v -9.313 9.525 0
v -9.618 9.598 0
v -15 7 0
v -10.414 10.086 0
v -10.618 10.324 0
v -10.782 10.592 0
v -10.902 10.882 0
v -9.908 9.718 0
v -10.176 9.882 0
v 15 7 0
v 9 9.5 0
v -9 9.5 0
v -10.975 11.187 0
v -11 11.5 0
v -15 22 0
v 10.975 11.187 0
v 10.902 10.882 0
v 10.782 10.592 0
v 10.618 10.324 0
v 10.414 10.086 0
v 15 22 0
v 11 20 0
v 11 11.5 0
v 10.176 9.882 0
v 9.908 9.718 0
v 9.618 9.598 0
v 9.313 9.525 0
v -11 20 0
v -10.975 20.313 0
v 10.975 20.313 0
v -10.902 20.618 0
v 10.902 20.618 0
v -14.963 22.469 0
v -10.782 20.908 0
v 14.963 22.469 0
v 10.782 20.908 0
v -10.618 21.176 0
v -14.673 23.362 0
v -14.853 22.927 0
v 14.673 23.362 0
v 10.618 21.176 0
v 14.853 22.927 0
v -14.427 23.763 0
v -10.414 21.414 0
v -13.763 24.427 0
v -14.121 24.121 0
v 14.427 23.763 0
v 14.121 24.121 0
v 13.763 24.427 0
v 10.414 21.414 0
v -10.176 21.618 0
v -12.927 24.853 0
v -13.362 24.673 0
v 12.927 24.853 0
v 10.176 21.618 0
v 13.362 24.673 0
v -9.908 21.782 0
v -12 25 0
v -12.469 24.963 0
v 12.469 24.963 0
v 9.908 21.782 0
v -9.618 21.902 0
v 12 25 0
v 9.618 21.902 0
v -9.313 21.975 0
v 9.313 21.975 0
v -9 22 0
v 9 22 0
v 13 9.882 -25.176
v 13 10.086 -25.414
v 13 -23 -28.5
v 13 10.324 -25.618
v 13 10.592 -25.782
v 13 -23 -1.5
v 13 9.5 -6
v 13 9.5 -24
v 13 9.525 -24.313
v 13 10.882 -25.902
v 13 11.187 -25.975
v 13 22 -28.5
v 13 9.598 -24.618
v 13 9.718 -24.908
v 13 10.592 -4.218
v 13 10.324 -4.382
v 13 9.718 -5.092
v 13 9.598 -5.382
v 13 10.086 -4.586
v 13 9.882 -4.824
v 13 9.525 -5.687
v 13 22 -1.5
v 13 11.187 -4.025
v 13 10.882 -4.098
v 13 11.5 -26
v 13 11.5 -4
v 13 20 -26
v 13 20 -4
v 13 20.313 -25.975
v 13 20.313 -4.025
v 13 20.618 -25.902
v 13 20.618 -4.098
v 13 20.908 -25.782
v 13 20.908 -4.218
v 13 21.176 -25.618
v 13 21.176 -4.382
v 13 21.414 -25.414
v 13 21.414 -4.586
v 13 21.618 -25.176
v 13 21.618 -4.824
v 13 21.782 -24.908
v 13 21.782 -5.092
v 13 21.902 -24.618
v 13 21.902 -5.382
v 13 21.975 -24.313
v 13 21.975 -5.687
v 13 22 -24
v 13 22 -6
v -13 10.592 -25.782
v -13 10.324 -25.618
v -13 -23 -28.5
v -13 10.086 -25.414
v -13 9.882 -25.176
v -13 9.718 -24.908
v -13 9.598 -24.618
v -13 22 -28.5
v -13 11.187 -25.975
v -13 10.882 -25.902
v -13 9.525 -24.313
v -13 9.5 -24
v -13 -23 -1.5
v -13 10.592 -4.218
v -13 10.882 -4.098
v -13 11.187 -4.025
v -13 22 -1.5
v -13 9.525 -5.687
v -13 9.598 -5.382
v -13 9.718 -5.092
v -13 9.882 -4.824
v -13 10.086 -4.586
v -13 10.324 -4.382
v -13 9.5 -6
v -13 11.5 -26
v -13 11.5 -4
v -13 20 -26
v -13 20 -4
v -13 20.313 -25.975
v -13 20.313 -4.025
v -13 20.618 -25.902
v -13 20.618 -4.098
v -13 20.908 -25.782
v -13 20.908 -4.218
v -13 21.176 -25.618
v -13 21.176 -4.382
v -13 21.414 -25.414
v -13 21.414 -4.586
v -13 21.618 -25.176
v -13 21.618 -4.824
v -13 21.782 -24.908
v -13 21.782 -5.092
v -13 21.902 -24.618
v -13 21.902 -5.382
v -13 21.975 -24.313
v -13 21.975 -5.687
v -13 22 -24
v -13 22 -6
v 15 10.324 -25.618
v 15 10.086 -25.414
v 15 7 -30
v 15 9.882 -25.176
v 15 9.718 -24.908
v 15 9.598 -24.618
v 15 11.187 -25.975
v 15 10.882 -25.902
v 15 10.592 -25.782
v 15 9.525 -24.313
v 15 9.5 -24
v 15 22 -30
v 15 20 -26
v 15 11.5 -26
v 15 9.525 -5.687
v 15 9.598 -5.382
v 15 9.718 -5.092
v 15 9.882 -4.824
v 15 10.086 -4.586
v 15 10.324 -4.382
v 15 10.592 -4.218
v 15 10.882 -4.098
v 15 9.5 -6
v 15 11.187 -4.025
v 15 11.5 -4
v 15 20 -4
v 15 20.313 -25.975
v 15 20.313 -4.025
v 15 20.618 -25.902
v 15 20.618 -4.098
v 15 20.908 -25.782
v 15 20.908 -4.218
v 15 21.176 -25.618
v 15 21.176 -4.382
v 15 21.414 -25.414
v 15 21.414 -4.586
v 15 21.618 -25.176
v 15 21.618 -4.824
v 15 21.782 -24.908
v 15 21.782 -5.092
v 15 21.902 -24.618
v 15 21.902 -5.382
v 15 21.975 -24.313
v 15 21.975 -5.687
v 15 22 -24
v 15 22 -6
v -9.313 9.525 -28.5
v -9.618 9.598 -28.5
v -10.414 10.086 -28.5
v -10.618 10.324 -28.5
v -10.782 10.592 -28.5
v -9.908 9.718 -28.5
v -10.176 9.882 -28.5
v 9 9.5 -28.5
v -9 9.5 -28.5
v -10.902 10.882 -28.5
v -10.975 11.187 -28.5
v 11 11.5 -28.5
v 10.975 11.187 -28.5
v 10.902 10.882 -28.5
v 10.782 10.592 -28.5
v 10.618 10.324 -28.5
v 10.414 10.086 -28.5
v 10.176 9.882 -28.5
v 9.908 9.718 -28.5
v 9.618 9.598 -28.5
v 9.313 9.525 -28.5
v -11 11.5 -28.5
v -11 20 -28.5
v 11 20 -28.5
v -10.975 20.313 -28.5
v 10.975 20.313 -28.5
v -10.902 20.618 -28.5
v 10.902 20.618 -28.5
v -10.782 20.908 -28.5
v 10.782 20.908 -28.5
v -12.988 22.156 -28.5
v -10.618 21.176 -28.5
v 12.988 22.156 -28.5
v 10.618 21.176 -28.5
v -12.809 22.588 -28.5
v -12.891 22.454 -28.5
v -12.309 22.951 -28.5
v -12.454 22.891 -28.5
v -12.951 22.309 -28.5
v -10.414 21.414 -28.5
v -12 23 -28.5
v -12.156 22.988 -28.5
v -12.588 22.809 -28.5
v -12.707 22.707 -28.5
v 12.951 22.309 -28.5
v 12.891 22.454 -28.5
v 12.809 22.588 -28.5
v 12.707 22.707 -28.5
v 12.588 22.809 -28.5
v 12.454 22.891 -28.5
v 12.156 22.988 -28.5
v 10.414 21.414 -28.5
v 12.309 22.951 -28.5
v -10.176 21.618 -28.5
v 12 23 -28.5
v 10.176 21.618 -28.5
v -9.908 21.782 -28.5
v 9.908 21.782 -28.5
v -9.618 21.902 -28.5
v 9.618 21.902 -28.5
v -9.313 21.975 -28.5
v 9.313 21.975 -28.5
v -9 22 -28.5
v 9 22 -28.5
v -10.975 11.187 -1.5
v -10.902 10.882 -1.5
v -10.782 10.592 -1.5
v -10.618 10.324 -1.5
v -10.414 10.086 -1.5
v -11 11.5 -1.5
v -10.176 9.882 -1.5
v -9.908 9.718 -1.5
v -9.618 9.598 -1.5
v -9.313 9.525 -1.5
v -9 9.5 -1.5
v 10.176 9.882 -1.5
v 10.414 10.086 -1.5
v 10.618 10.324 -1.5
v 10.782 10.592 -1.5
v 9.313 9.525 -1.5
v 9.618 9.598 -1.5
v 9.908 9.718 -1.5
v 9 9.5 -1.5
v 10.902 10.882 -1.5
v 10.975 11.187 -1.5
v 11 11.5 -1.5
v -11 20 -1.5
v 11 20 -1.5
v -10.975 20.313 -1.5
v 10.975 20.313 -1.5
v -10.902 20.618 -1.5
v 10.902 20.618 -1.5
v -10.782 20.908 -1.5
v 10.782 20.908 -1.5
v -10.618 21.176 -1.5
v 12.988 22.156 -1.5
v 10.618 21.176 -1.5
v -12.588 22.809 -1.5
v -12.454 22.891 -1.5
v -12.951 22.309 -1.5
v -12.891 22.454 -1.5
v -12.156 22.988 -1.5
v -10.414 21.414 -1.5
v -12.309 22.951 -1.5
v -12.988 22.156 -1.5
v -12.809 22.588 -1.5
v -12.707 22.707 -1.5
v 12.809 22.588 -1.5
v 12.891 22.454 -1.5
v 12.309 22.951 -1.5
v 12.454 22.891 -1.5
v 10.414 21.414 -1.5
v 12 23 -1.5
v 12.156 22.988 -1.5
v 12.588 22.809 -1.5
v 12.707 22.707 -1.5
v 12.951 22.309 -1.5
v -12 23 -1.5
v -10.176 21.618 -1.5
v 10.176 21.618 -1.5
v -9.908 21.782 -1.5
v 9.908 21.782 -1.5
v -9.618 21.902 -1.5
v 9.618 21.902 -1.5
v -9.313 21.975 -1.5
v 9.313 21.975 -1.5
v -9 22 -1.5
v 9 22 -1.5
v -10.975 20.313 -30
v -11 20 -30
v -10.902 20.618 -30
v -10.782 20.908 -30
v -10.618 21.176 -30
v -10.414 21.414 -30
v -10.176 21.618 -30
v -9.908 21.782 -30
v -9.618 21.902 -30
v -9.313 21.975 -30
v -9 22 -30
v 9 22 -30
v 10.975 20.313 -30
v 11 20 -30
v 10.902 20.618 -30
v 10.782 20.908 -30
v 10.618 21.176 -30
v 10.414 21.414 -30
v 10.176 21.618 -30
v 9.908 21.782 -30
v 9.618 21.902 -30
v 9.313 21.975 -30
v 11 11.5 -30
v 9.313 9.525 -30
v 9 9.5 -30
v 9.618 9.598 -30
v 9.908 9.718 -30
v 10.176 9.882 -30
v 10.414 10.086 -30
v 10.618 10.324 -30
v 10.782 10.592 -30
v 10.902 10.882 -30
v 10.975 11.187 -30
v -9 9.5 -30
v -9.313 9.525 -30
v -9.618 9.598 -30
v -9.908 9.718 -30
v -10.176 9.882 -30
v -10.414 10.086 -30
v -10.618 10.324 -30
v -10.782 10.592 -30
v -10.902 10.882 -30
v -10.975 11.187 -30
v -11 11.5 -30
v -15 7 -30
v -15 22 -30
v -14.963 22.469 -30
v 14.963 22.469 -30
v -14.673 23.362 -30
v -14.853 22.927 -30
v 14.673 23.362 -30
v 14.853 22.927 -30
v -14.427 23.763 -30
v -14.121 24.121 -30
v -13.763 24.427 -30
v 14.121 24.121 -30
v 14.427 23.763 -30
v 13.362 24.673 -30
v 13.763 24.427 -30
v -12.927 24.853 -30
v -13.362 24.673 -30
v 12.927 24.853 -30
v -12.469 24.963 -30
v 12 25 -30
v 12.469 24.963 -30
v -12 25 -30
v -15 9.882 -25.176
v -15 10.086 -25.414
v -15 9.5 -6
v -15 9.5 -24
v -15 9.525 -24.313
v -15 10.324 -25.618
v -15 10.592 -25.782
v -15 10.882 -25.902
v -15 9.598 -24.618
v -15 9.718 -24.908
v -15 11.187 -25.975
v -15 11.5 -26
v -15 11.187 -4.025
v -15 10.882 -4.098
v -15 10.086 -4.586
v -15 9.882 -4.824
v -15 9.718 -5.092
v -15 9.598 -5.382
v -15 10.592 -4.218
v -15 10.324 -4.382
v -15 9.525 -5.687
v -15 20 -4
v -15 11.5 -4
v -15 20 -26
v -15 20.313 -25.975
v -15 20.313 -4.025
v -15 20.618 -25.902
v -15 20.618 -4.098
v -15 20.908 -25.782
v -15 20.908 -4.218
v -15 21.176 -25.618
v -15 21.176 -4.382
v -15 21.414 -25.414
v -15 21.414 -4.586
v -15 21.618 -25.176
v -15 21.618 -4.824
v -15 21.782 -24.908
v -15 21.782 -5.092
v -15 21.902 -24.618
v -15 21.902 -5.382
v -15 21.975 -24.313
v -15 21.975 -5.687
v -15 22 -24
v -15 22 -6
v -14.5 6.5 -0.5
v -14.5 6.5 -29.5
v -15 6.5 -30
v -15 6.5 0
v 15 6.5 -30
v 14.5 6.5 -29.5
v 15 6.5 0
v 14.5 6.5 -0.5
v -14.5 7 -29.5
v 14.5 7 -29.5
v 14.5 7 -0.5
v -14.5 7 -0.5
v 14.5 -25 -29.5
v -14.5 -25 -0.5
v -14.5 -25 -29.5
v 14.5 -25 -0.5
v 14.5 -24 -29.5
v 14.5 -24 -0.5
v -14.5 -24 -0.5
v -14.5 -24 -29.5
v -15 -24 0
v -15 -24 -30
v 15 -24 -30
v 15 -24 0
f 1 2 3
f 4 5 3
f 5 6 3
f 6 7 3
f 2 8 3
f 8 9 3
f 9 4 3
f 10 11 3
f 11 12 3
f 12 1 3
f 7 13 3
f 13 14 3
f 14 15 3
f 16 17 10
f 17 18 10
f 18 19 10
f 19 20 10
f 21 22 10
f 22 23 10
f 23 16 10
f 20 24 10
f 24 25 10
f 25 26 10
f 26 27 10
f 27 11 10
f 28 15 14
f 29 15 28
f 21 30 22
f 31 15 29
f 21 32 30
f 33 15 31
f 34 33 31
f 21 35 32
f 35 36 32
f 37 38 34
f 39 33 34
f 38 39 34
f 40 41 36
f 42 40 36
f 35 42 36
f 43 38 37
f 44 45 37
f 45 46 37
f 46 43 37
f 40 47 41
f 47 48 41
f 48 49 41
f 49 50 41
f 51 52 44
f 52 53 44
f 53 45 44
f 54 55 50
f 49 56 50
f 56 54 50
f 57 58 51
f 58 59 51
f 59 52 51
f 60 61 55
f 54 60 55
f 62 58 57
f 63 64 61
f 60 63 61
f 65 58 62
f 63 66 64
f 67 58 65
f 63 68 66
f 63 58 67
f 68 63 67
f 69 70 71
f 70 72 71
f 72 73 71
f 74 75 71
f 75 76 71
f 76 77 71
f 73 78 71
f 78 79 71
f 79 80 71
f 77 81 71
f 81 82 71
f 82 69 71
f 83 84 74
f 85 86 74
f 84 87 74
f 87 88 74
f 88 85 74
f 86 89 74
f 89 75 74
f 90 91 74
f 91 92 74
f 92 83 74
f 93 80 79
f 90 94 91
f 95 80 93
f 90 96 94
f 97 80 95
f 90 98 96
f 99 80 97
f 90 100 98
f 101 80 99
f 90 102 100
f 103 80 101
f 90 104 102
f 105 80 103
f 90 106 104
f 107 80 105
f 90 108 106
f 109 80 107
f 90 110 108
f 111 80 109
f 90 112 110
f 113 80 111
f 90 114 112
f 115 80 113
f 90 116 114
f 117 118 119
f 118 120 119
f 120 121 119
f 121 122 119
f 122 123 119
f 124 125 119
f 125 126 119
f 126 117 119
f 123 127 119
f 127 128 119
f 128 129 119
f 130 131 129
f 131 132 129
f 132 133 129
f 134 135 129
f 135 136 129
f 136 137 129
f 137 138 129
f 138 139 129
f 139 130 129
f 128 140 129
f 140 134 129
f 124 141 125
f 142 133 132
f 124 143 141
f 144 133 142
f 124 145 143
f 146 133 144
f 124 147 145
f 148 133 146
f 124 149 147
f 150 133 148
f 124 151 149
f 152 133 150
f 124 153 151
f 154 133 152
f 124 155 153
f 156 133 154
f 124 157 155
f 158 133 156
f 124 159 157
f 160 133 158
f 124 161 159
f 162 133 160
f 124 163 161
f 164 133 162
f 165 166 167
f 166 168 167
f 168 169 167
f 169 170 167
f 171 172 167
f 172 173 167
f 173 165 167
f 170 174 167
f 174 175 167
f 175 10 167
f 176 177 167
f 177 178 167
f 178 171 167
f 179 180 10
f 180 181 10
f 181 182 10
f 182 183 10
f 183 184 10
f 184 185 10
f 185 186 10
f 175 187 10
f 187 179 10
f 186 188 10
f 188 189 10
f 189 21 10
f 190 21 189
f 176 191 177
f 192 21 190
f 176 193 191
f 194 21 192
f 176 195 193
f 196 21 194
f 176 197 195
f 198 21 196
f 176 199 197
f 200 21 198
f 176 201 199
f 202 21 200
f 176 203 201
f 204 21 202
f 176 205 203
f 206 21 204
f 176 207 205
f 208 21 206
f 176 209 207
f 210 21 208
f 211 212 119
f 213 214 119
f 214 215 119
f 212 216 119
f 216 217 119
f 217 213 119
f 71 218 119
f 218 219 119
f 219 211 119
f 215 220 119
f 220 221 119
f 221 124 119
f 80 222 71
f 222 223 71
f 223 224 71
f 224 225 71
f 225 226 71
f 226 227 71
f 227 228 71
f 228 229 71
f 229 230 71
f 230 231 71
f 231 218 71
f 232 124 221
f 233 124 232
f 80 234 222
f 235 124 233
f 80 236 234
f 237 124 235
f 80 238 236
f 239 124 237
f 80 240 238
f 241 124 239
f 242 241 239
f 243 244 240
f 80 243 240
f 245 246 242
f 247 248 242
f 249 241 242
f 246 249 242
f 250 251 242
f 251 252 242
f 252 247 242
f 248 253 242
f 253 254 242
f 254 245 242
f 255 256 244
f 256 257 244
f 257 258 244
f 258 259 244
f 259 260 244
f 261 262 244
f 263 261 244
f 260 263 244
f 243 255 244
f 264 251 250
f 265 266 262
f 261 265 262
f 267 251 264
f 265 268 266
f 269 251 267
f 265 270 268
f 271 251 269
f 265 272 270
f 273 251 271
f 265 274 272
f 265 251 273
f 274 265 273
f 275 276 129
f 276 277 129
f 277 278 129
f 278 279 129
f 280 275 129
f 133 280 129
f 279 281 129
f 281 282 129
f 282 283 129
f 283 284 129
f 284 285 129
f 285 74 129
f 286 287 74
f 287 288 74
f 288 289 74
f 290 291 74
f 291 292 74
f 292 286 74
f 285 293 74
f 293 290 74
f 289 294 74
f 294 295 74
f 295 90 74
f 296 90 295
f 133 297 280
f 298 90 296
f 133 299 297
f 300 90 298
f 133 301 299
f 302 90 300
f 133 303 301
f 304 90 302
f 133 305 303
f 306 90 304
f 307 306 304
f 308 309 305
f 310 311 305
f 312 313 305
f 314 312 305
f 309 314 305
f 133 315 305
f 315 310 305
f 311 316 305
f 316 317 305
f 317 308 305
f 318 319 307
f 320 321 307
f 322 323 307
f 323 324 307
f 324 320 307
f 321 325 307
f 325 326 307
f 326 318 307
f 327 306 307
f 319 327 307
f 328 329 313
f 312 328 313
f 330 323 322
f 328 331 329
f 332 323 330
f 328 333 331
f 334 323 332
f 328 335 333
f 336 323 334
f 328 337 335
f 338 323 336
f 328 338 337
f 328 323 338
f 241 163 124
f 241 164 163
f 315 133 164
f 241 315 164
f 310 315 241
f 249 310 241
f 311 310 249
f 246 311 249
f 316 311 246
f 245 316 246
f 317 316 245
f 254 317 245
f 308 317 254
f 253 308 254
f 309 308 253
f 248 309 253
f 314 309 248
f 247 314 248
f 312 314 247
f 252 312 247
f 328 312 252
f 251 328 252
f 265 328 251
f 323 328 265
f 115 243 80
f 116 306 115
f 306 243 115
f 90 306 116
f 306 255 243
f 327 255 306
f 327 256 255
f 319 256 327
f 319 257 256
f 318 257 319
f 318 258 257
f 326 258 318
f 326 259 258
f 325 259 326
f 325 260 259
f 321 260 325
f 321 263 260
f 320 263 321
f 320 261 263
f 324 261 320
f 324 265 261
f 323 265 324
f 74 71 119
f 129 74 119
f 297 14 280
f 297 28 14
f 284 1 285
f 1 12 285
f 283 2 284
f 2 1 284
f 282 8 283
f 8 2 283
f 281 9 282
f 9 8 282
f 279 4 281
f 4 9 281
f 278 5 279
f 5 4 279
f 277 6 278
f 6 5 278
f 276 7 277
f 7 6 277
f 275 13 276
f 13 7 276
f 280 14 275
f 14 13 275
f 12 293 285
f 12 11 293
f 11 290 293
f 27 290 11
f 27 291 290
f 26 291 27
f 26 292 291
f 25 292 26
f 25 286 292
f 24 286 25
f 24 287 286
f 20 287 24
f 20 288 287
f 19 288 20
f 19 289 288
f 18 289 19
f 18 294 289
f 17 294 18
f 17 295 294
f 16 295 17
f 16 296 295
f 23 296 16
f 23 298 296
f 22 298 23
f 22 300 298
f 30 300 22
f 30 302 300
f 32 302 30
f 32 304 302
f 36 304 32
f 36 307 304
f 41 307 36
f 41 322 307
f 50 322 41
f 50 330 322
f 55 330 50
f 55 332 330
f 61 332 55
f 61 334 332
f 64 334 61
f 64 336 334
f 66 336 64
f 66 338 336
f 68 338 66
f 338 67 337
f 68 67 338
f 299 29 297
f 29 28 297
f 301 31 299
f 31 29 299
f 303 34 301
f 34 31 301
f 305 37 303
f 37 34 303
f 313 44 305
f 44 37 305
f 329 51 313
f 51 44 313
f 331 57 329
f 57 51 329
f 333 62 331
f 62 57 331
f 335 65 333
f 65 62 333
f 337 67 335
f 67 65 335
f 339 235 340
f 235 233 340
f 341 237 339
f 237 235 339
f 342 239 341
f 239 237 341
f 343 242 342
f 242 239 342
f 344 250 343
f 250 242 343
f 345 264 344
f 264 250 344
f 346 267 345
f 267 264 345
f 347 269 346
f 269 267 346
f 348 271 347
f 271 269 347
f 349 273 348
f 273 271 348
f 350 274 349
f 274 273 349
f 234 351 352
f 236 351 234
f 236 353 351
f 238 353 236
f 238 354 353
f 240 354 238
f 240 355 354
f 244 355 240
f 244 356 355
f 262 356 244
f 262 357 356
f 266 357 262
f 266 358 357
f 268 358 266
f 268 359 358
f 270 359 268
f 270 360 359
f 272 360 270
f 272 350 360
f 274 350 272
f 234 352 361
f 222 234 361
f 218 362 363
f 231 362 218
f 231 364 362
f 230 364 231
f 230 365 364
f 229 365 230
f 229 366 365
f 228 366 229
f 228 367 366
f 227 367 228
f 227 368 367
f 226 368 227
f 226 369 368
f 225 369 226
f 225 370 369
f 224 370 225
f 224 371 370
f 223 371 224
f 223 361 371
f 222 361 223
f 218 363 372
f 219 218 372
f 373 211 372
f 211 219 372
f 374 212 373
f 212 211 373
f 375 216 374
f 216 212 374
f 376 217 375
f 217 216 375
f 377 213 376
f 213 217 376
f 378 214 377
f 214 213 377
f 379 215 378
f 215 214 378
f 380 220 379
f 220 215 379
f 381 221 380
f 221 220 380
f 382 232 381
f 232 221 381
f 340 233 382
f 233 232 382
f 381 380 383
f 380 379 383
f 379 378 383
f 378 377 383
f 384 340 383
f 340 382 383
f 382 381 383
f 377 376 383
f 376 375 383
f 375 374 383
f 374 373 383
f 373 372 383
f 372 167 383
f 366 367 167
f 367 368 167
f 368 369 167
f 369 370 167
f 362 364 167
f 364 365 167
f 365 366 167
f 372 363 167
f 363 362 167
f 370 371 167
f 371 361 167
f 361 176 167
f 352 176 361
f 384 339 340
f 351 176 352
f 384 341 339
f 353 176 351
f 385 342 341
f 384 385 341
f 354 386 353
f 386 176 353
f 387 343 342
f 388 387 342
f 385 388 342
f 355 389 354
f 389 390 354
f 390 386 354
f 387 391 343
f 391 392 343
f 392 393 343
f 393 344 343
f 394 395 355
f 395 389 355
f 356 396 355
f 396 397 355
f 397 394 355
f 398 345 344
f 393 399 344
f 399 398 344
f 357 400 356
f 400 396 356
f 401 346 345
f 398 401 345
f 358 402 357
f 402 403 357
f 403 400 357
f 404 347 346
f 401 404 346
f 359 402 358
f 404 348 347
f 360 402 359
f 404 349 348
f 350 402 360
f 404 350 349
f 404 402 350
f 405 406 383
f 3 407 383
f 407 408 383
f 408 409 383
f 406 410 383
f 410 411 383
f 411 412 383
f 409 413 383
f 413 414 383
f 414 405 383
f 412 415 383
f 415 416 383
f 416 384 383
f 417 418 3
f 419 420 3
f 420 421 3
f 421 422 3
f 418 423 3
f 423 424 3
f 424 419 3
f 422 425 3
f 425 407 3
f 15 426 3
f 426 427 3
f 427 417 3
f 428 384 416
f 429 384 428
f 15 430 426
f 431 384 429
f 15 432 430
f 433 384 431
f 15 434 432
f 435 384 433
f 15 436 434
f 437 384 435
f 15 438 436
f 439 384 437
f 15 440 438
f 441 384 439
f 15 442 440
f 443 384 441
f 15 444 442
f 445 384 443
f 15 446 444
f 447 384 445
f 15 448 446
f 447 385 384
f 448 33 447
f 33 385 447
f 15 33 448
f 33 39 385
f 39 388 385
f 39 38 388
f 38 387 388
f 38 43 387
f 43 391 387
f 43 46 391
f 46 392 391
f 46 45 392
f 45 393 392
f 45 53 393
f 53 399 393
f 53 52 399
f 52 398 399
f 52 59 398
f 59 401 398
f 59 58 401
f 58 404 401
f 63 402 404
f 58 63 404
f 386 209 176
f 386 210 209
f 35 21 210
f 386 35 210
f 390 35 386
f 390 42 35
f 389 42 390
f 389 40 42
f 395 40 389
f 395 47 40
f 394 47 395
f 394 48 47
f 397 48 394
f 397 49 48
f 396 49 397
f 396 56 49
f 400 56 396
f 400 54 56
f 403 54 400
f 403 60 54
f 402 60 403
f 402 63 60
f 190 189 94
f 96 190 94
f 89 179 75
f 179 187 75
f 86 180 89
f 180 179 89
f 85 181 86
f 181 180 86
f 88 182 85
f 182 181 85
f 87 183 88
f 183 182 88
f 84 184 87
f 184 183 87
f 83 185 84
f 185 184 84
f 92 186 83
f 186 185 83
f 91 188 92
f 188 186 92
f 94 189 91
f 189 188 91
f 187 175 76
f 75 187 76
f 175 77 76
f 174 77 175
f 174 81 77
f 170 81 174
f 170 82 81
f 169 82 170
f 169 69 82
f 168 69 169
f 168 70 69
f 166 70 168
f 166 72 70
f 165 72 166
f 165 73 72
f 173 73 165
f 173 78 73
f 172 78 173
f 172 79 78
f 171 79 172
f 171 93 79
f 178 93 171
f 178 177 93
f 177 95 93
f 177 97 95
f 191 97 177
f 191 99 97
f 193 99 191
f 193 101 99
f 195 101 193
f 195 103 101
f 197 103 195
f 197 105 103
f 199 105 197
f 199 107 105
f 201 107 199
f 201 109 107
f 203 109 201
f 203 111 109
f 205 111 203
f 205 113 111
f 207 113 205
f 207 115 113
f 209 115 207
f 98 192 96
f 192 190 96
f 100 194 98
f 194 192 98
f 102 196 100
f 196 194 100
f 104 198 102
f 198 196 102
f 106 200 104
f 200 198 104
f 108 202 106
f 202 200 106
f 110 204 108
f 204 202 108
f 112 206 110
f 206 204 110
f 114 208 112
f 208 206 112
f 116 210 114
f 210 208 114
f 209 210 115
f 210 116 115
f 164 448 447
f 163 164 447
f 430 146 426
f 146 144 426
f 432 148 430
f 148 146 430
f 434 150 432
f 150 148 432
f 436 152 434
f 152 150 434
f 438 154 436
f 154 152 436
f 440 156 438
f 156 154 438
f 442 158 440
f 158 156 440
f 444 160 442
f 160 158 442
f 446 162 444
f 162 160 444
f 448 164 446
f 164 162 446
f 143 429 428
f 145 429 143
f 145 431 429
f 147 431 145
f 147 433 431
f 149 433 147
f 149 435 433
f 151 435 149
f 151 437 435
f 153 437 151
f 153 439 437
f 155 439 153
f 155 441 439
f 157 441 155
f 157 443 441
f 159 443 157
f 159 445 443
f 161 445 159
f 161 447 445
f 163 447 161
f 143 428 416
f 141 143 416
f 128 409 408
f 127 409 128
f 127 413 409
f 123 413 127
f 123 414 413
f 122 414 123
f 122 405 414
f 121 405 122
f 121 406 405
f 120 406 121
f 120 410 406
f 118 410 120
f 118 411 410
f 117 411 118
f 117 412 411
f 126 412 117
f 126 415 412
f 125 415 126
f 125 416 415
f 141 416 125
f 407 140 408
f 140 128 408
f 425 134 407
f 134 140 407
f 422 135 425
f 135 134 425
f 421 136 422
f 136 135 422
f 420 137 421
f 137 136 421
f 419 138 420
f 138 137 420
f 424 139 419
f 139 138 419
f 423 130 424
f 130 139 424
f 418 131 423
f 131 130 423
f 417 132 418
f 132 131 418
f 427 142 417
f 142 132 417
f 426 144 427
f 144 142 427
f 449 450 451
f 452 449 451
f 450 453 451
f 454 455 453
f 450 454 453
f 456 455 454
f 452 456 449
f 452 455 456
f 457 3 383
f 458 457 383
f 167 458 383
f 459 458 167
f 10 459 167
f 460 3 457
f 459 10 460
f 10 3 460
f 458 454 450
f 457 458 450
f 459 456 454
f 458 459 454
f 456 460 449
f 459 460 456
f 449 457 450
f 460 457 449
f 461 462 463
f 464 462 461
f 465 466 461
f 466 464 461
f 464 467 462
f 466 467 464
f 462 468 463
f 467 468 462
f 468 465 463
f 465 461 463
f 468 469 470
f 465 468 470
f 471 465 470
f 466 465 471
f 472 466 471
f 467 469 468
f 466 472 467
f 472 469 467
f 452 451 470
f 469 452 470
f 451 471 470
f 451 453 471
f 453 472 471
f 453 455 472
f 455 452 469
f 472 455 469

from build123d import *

# Parameters (mm, degrees)
BOSS_EXTRUDE1_DEPTH = 30
CUT_EXTRUDE1_START  = -1.5
CUT_EXTRUDE1_DEPTH  = 27
CUT_EXTRUDE2_DEPTH  = 42.833001327
CUT_EXTRUDE3_DEPTH  = 50.244289009
SKETCH8_W           = 30
SKETCH8_H           = 30
SKETCH8_W_2         = 29
SKETCH8_H_2         = 29
CUT_EXTRUDE5_DEPTH  = 1
CUT_EXTRUDE9_START  = -31
SKETCH9_W           = 30
SKETCH9_H           = 30
SKETCH9_W_2         = 29
SKETCH9_H_2         = 29
CUT_EXTRUDE9_DEPTH  = 0.5


with BuildPart() as part:
    # Sketch1 → Boss-Extrude1 (new body)
    with BuildSketch(Plane.XY):
        with BuildLine():
            Line((-15, -25), (15, -25))
            Line((15, -25), (15, 22))
            ThreePointArc((15, 22), (14.121320344, 24.121320344), (12, 25))
            Line((12, 25), (-12, 25))
            ThreePointArc((-12, 25), (-14.121320344, 24.121320344), (-15, 22))
            Line((-15, 22), (-15, -25))
        make_face()
    extrude(amount=-BOSS_EXTRUDE1_DEPTH)

    # Sketch2 → Cut-Extrude1 (cut)
    with BuildSketch(Plane.XY.offset(CUT_EXTRUDE1_START)):
        with BuildLine():
            Line((-13, 22), (-13, -23))
            Line((-13, -23), (13, -23))
            Line((13, -23), (13, 22))
            ThreePointArc((13, 22), (12.707106781, 22.707106781), (12, 23))
            Line((12, 23), (-12, 23))
            ThreePointArc((-12, 23), (-12.707106781, 22.707106781), (-13, 22))
        make_face()
    extrude(amount=-CUT_EXTRUDE1_DEPTH, mode=Mode.SUBTRACT)

    # Sketch4 → Cut-Extrude2 (cut, through all)
    with BuildSketch(Plane.XY):
        with BuildLine():
            ThreePointArc((-11, 11.5), (-10.414213562, 10.085786438), (-9, 9.5))
            Line((-9, 9.5), (9, 9.5))
            ThreePointArc((9, 9.5), (10.414213562, 10.085786438), (11, 11.5))
            Line((11, 11.5), (11, 20))
            ThreePointArc((11, 20), (10.414213562, 21.414213562), (9, 22))
            Line((9, 22), (-9, 22))
            ThreePointArc((-9, 22), (-10.414213562, 21.414213562), (-11, 20))
            Line((-11, 20), (-11, 11.5))
        make_face()
    extrude(amount=-CUT_EXTRUDE2_DEPTH, mode=Mode.SUBTRACT)

    # Sketch5 → Cut-Extrude3 (cut, through all)
    with BuildSketch(Plane(origin=(15, 0, 0), x_dir=(0, 0, -1), z_dir=(1, 0, 0))):
        with BuildLine():
            Line((6, 22), (24, 22))
            ThreePointArc((24, 22), (25.414213562, 21.414213562), (26, 20))
            Line((26, 20), (26, 11.5))
            ThreePointArc((26, 11.5), (25.414213562, 10.085786438), (24, 9.5))
            Line((24, 9.5), (6, 9.5))
            ThreePointArc((6, 9.5), (4.585786438, 10.085786438), (4, 11.5))
            Line((4, 11.5), (4, 20))
            ThreePointArc((4, 20), (4.585786438, 21.414213562), (6, 22))
        make_face()
    extrude(amount=-CUT_EXTRUDE3_DEPTH, mode=Mode.SUBTRACT)

    # Sketch8 → Cut-Extrude5 (cut)
    with BuildSketch(Plane.XZ.offset(25)):
        with Locations((0, -15)):
            Rectangle(SKETCH8_W, SKETCH8_H)
        with Locations((0, -15)):
            Rectangle(SKETCH8_W_2, SKETCH8_H_2, mode=Mode.SUBTRACT)
    extrude(amount=-CUT_EXTRUDE5_DEPTH, mode=Mode.SUBTRACT)

    # Sketch9 → Cut-Extrude9 (cut)
    with BuildSketch(Plane.XZ.offset(24).offset(CUT_EXTRUDE9_START)):
        with Locations((0, -15)):
            Rectangle(SKETCH9_W, SKETCH9_H)
        with Locations((0, -15)):
            Rectangle(SKETCH9_W_2, SKETCH9_H_2, mode=Mode.SUBTRACT)
    extrude(amount=CUT_EXTRUDE9_DEPTH, mode=Mode.SUBTRACT)


solid = part.part
